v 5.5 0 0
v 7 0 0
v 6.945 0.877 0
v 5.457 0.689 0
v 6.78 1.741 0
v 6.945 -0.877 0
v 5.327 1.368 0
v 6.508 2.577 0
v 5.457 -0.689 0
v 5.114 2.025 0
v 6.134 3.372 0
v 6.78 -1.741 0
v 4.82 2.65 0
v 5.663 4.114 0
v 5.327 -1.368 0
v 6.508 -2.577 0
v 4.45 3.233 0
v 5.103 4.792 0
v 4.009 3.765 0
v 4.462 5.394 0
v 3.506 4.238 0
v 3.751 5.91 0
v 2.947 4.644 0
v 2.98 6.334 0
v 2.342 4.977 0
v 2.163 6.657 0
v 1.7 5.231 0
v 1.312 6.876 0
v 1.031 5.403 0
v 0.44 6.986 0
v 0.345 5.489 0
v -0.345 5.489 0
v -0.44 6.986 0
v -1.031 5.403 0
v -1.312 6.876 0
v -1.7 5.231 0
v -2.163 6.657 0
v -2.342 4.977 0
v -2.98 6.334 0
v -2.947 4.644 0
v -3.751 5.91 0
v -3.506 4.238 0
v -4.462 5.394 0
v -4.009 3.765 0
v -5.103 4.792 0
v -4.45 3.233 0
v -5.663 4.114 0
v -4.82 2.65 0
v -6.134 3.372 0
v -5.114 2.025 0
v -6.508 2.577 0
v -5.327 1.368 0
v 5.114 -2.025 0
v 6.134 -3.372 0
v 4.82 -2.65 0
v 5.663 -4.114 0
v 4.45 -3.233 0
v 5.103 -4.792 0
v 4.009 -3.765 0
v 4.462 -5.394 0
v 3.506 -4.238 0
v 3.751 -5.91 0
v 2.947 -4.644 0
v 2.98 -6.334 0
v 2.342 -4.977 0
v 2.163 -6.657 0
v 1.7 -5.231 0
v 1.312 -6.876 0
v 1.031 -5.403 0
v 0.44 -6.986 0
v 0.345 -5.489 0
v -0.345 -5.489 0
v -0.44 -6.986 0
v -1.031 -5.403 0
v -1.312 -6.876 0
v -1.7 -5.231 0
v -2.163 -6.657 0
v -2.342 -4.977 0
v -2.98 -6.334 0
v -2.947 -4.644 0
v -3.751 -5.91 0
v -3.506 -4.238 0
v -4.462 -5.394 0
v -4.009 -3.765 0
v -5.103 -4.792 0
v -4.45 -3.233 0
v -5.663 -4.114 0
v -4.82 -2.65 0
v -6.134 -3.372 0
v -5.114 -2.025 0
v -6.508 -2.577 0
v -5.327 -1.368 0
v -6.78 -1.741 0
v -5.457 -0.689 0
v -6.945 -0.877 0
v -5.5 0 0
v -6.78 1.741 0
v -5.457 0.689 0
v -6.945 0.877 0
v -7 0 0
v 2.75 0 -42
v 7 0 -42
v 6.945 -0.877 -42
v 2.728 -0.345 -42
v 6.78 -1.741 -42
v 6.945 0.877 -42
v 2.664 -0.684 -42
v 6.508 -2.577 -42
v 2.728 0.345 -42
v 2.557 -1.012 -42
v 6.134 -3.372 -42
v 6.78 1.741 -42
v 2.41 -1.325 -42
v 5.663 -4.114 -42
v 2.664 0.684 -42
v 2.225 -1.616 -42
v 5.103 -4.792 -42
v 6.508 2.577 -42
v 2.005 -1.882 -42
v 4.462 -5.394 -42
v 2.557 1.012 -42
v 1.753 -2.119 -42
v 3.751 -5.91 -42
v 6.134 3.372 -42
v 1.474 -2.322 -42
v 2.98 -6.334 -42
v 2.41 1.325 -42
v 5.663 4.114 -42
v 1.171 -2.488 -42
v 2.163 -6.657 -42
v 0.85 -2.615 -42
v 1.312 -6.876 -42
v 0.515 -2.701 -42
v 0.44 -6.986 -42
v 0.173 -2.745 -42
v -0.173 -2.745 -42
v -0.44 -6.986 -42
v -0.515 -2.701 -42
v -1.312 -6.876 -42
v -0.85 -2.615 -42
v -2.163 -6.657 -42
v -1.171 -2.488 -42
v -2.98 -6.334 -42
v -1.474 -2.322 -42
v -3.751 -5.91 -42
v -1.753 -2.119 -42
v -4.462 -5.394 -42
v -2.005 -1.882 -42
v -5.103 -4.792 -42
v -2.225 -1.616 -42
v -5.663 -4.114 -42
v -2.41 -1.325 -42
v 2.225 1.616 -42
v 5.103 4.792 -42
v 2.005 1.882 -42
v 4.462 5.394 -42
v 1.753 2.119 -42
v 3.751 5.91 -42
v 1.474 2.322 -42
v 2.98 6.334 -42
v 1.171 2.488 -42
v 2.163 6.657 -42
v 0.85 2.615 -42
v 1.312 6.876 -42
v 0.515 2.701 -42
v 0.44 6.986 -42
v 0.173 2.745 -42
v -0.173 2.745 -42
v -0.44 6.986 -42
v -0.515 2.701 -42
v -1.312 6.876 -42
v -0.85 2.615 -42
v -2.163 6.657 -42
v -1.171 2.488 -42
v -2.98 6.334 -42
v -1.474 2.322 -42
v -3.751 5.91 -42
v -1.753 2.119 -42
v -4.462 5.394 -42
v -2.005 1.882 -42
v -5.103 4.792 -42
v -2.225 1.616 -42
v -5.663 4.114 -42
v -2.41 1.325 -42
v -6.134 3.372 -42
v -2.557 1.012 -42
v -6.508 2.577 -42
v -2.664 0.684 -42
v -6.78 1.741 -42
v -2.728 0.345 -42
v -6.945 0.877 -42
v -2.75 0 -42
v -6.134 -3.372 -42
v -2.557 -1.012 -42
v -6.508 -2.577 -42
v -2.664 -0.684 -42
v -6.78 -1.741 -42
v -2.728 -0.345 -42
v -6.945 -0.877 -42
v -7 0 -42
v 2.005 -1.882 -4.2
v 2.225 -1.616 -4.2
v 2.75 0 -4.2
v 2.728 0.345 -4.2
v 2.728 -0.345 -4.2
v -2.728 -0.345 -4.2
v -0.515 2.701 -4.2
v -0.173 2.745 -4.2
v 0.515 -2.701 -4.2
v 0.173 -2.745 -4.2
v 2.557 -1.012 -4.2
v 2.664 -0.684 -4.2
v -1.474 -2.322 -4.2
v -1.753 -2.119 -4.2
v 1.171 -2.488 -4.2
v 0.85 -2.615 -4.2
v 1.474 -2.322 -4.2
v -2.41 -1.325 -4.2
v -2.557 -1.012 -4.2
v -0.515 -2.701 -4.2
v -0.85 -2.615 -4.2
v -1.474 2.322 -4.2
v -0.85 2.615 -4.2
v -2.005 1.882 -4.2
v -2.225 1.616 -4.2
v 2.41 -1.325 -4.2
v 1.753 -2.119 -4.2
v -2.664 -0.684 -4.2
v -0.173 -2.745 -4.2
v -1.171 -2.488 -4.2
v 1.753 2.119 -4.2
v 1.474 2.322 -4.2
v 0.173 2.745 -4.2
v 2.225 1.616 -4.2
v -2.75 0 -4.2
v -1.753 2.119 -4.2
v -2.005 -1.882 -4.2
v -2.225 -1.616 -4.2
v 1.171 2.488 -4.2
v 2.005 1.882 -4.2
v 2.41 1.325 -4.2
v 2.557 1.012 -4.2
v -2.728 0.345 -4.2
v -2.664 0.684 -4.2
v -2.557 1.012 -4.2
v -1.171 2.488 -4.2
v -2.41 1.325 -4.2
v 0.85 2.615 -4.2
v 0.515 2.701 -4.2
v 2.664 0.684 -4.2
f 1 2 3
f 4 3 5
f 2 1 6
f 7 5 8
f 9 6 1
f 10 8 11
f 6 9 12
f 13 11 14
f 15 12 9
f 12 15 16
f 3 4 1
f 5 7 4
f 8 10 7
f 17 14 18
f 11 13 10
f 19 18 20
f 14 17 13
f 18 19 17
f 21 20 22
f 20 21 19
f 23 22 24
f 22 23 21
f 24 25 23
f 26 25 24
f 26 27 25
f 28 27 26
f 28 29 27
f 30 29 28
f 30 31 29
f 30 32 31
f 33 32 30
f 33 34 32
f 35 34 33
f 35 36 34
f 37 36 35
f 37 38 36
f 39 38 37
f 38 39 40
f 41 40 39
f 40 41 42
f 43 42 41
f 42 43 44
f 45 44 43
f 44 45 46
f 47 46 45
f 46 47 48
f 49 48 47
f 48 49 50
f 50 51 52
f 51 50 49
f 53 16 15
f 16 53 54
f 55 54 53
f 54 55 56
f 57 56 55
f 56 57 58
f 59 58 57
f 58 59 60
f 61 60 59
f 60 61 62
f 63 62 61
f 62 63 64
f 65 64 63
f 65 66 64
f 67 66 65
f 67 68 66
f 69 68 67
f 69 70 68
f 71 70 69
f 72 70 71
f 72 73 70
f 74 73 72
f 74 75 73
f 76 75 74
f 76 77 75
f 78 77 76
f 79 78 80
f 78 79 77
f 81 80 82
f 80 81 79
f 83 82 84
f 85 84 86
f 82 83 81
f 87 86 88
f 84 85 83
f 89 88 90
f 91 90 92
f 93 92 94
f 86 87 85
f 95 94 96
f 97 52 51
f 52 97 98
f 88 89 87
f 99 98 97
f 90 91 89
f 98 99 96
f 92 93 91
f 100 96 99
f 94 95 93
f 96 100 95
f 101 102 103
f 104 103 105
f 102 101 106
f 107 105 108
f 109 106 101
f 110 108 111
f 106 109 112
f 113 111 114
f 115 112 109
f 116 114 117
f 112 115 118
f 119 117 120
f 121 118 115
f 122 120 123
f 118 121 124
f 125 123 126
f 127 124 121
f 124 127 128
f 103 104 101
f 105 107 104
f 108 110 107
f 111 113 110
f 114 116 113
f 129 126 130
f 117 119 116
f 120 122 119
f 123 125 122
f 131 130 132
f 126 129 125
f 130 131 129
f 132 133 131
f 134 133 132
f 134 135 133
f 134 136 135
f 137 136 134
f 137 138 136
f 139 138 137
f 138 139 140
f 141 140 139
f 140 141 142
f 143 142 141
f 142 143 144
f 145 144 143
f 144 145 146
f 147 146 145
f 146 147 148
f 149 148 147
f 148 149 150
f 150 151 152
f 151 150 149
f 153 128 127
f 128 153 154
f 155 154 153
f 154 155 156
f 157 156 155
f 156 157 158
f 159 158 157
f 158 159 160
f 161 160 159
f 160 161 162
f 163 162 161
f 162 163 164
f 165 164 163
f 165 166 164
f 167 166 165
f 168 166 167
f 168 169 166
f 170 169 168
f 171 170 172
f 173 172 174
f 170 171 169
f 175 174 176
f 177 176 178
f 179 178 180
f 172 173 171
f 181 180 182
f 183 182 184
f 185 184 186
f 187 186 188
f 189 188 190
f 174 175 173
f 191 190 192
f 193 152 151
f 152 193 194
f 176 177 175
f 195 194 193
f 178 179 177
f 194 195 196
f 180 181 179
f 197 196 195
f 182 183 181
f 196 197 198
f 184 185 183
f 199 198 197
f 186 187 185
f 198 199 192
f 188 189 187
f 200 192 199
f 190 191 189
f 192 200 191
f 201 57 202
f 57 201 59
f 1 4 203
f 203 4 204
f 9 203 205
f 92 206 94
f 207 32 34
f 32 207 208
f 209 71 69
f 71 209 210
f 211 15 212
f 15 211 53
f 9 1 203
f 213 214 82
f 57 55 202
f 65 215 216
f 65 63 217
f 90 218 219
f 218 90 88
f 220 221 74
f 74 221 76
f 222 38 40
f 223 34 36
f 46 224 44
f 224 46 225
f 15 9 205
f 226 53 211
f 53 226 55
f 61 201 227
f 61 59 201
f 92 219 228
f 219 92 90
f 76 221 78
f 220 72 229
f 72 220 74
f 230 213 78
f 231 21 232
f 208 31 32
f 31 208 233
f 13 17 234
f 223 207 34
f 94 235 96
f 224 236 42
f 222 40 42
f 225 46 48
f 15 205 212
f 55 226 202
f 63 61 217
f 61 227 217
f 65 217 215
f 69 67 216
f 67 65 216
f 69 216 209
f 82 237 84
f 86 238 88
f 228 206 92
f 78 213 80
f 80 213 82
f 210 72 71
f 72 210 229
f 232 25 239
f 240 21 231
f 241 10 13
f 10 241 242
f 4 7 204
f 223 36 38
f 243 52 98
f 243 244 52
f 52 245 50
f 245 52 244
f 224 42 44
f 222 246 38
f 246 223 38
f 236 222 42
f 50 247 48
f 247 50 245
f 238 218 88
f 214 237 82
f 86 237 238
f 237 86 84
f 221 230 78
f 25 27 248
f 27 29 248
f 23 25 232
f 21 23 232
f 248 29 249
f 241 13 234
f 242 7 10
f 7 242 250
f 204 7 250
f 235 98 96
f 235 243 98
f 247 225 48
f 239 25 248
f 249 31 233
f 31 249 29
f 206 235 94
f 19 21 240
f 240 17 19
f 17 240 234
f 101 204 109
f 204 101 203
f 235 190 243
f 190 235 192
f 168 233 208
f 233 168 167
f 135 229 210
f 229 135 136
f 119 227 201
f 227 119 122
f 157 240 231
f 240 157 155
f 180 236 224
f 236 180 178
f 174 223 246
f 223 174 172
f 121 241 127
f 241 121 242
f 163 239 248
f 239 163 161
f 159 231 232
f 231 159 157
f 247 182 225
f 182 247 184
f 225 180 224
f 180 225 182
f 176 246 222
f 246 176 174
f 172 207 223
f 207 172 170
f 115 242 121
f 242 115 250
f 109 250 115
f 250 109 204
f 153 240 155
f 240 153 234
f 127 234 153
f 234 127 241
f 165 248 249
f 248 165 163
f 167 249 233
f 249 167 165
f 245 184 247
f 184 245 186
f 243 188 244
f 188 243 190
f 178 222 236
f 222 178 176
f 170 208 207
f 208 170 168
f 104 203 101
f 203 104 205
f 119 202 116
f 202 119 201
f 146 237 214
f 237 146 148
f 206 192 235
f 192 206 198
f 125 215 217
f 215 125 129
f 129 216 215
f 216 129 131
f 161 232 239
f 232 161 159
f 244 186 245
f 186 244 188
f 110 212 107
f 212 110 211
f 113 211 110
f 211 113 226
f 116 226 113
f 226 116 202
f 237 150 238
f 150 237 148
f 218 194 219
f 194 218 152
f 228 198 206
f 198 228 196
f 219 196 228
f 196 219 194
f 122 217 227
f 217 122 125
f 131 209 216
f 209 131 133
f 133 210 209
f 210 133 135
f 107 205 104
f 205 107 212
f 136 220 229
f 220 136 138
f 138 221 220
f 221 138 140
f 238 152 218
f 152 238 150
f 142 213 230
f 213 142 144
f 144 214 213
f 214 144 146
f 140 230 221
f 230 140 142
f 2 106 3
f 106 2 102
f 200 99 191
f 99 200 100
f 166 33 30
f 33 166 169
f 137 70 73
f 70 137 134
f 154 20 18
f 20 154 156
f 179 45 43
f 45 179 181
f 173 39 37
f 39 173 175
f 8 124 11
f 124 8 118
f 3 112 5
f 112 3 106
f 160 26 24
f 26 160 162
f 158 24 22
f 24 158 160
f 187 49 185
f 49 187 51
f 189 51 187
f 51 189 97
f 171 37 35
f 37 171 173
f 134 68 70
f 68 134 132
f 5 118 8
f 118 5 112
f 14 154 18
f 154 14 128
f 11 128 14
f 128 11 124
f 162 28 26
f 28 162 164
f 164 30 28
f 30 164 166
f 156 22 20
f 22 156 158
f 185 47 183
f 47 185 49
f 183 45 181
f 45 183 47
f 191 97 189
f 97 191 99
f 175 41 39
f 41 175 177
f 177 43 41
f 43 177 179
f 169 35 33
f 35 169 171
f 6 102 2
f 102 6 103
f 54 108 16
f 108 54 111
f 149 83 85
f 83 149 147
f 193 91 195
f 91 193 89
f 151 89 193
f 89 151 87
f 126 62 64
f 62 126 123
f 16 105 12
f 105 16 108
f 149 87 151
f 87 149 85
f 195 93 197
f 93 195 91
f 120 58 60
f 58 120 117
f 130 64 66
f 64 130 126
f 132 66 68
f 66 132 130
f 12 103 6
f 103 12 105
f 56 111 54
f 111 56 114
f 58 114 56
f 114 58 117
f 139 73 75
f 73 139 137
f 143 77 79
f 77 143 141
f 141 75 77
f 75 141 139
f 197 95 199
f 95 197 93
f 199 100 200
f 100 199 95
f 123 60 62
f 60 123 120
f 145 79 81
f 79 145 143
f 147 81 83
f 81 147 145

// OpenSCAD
$fn = 50;


difference() {
	union() {
		translate(v = [0, 0, -42.0000000000]) {
			cylinder(h = 42, r = 7.0000000000);
		}
		cylinder(h = 0, r = 10.0000000000);
	}
	union() {
		translate(v = [0, 0, 0]) {
			rotate(a = [0, 0, 0]) {
				difference() {
					union() {
						#translate(v = [0, 0, -42.0000000000]) {
							cylinder(h = 42, r = 2.2500000000);
						}
						#translate(v = [0, 0, -4.2000000000]) {
							cylinder(h = 4.2000000000, r1 = 2.7500000000, r2 = 5.5000000000);
						}
						#translate(v = [0, 0, -42.0000000000]) {
							cylinder(h = 42, r = 2.7500000000);
						}
						#translate(v = [0, 0, -42.0000000000]) {
							cylinder(h = 42, r = 2.2500000000);
						}
					}
					union();
				}
			}
		}
	}
}
